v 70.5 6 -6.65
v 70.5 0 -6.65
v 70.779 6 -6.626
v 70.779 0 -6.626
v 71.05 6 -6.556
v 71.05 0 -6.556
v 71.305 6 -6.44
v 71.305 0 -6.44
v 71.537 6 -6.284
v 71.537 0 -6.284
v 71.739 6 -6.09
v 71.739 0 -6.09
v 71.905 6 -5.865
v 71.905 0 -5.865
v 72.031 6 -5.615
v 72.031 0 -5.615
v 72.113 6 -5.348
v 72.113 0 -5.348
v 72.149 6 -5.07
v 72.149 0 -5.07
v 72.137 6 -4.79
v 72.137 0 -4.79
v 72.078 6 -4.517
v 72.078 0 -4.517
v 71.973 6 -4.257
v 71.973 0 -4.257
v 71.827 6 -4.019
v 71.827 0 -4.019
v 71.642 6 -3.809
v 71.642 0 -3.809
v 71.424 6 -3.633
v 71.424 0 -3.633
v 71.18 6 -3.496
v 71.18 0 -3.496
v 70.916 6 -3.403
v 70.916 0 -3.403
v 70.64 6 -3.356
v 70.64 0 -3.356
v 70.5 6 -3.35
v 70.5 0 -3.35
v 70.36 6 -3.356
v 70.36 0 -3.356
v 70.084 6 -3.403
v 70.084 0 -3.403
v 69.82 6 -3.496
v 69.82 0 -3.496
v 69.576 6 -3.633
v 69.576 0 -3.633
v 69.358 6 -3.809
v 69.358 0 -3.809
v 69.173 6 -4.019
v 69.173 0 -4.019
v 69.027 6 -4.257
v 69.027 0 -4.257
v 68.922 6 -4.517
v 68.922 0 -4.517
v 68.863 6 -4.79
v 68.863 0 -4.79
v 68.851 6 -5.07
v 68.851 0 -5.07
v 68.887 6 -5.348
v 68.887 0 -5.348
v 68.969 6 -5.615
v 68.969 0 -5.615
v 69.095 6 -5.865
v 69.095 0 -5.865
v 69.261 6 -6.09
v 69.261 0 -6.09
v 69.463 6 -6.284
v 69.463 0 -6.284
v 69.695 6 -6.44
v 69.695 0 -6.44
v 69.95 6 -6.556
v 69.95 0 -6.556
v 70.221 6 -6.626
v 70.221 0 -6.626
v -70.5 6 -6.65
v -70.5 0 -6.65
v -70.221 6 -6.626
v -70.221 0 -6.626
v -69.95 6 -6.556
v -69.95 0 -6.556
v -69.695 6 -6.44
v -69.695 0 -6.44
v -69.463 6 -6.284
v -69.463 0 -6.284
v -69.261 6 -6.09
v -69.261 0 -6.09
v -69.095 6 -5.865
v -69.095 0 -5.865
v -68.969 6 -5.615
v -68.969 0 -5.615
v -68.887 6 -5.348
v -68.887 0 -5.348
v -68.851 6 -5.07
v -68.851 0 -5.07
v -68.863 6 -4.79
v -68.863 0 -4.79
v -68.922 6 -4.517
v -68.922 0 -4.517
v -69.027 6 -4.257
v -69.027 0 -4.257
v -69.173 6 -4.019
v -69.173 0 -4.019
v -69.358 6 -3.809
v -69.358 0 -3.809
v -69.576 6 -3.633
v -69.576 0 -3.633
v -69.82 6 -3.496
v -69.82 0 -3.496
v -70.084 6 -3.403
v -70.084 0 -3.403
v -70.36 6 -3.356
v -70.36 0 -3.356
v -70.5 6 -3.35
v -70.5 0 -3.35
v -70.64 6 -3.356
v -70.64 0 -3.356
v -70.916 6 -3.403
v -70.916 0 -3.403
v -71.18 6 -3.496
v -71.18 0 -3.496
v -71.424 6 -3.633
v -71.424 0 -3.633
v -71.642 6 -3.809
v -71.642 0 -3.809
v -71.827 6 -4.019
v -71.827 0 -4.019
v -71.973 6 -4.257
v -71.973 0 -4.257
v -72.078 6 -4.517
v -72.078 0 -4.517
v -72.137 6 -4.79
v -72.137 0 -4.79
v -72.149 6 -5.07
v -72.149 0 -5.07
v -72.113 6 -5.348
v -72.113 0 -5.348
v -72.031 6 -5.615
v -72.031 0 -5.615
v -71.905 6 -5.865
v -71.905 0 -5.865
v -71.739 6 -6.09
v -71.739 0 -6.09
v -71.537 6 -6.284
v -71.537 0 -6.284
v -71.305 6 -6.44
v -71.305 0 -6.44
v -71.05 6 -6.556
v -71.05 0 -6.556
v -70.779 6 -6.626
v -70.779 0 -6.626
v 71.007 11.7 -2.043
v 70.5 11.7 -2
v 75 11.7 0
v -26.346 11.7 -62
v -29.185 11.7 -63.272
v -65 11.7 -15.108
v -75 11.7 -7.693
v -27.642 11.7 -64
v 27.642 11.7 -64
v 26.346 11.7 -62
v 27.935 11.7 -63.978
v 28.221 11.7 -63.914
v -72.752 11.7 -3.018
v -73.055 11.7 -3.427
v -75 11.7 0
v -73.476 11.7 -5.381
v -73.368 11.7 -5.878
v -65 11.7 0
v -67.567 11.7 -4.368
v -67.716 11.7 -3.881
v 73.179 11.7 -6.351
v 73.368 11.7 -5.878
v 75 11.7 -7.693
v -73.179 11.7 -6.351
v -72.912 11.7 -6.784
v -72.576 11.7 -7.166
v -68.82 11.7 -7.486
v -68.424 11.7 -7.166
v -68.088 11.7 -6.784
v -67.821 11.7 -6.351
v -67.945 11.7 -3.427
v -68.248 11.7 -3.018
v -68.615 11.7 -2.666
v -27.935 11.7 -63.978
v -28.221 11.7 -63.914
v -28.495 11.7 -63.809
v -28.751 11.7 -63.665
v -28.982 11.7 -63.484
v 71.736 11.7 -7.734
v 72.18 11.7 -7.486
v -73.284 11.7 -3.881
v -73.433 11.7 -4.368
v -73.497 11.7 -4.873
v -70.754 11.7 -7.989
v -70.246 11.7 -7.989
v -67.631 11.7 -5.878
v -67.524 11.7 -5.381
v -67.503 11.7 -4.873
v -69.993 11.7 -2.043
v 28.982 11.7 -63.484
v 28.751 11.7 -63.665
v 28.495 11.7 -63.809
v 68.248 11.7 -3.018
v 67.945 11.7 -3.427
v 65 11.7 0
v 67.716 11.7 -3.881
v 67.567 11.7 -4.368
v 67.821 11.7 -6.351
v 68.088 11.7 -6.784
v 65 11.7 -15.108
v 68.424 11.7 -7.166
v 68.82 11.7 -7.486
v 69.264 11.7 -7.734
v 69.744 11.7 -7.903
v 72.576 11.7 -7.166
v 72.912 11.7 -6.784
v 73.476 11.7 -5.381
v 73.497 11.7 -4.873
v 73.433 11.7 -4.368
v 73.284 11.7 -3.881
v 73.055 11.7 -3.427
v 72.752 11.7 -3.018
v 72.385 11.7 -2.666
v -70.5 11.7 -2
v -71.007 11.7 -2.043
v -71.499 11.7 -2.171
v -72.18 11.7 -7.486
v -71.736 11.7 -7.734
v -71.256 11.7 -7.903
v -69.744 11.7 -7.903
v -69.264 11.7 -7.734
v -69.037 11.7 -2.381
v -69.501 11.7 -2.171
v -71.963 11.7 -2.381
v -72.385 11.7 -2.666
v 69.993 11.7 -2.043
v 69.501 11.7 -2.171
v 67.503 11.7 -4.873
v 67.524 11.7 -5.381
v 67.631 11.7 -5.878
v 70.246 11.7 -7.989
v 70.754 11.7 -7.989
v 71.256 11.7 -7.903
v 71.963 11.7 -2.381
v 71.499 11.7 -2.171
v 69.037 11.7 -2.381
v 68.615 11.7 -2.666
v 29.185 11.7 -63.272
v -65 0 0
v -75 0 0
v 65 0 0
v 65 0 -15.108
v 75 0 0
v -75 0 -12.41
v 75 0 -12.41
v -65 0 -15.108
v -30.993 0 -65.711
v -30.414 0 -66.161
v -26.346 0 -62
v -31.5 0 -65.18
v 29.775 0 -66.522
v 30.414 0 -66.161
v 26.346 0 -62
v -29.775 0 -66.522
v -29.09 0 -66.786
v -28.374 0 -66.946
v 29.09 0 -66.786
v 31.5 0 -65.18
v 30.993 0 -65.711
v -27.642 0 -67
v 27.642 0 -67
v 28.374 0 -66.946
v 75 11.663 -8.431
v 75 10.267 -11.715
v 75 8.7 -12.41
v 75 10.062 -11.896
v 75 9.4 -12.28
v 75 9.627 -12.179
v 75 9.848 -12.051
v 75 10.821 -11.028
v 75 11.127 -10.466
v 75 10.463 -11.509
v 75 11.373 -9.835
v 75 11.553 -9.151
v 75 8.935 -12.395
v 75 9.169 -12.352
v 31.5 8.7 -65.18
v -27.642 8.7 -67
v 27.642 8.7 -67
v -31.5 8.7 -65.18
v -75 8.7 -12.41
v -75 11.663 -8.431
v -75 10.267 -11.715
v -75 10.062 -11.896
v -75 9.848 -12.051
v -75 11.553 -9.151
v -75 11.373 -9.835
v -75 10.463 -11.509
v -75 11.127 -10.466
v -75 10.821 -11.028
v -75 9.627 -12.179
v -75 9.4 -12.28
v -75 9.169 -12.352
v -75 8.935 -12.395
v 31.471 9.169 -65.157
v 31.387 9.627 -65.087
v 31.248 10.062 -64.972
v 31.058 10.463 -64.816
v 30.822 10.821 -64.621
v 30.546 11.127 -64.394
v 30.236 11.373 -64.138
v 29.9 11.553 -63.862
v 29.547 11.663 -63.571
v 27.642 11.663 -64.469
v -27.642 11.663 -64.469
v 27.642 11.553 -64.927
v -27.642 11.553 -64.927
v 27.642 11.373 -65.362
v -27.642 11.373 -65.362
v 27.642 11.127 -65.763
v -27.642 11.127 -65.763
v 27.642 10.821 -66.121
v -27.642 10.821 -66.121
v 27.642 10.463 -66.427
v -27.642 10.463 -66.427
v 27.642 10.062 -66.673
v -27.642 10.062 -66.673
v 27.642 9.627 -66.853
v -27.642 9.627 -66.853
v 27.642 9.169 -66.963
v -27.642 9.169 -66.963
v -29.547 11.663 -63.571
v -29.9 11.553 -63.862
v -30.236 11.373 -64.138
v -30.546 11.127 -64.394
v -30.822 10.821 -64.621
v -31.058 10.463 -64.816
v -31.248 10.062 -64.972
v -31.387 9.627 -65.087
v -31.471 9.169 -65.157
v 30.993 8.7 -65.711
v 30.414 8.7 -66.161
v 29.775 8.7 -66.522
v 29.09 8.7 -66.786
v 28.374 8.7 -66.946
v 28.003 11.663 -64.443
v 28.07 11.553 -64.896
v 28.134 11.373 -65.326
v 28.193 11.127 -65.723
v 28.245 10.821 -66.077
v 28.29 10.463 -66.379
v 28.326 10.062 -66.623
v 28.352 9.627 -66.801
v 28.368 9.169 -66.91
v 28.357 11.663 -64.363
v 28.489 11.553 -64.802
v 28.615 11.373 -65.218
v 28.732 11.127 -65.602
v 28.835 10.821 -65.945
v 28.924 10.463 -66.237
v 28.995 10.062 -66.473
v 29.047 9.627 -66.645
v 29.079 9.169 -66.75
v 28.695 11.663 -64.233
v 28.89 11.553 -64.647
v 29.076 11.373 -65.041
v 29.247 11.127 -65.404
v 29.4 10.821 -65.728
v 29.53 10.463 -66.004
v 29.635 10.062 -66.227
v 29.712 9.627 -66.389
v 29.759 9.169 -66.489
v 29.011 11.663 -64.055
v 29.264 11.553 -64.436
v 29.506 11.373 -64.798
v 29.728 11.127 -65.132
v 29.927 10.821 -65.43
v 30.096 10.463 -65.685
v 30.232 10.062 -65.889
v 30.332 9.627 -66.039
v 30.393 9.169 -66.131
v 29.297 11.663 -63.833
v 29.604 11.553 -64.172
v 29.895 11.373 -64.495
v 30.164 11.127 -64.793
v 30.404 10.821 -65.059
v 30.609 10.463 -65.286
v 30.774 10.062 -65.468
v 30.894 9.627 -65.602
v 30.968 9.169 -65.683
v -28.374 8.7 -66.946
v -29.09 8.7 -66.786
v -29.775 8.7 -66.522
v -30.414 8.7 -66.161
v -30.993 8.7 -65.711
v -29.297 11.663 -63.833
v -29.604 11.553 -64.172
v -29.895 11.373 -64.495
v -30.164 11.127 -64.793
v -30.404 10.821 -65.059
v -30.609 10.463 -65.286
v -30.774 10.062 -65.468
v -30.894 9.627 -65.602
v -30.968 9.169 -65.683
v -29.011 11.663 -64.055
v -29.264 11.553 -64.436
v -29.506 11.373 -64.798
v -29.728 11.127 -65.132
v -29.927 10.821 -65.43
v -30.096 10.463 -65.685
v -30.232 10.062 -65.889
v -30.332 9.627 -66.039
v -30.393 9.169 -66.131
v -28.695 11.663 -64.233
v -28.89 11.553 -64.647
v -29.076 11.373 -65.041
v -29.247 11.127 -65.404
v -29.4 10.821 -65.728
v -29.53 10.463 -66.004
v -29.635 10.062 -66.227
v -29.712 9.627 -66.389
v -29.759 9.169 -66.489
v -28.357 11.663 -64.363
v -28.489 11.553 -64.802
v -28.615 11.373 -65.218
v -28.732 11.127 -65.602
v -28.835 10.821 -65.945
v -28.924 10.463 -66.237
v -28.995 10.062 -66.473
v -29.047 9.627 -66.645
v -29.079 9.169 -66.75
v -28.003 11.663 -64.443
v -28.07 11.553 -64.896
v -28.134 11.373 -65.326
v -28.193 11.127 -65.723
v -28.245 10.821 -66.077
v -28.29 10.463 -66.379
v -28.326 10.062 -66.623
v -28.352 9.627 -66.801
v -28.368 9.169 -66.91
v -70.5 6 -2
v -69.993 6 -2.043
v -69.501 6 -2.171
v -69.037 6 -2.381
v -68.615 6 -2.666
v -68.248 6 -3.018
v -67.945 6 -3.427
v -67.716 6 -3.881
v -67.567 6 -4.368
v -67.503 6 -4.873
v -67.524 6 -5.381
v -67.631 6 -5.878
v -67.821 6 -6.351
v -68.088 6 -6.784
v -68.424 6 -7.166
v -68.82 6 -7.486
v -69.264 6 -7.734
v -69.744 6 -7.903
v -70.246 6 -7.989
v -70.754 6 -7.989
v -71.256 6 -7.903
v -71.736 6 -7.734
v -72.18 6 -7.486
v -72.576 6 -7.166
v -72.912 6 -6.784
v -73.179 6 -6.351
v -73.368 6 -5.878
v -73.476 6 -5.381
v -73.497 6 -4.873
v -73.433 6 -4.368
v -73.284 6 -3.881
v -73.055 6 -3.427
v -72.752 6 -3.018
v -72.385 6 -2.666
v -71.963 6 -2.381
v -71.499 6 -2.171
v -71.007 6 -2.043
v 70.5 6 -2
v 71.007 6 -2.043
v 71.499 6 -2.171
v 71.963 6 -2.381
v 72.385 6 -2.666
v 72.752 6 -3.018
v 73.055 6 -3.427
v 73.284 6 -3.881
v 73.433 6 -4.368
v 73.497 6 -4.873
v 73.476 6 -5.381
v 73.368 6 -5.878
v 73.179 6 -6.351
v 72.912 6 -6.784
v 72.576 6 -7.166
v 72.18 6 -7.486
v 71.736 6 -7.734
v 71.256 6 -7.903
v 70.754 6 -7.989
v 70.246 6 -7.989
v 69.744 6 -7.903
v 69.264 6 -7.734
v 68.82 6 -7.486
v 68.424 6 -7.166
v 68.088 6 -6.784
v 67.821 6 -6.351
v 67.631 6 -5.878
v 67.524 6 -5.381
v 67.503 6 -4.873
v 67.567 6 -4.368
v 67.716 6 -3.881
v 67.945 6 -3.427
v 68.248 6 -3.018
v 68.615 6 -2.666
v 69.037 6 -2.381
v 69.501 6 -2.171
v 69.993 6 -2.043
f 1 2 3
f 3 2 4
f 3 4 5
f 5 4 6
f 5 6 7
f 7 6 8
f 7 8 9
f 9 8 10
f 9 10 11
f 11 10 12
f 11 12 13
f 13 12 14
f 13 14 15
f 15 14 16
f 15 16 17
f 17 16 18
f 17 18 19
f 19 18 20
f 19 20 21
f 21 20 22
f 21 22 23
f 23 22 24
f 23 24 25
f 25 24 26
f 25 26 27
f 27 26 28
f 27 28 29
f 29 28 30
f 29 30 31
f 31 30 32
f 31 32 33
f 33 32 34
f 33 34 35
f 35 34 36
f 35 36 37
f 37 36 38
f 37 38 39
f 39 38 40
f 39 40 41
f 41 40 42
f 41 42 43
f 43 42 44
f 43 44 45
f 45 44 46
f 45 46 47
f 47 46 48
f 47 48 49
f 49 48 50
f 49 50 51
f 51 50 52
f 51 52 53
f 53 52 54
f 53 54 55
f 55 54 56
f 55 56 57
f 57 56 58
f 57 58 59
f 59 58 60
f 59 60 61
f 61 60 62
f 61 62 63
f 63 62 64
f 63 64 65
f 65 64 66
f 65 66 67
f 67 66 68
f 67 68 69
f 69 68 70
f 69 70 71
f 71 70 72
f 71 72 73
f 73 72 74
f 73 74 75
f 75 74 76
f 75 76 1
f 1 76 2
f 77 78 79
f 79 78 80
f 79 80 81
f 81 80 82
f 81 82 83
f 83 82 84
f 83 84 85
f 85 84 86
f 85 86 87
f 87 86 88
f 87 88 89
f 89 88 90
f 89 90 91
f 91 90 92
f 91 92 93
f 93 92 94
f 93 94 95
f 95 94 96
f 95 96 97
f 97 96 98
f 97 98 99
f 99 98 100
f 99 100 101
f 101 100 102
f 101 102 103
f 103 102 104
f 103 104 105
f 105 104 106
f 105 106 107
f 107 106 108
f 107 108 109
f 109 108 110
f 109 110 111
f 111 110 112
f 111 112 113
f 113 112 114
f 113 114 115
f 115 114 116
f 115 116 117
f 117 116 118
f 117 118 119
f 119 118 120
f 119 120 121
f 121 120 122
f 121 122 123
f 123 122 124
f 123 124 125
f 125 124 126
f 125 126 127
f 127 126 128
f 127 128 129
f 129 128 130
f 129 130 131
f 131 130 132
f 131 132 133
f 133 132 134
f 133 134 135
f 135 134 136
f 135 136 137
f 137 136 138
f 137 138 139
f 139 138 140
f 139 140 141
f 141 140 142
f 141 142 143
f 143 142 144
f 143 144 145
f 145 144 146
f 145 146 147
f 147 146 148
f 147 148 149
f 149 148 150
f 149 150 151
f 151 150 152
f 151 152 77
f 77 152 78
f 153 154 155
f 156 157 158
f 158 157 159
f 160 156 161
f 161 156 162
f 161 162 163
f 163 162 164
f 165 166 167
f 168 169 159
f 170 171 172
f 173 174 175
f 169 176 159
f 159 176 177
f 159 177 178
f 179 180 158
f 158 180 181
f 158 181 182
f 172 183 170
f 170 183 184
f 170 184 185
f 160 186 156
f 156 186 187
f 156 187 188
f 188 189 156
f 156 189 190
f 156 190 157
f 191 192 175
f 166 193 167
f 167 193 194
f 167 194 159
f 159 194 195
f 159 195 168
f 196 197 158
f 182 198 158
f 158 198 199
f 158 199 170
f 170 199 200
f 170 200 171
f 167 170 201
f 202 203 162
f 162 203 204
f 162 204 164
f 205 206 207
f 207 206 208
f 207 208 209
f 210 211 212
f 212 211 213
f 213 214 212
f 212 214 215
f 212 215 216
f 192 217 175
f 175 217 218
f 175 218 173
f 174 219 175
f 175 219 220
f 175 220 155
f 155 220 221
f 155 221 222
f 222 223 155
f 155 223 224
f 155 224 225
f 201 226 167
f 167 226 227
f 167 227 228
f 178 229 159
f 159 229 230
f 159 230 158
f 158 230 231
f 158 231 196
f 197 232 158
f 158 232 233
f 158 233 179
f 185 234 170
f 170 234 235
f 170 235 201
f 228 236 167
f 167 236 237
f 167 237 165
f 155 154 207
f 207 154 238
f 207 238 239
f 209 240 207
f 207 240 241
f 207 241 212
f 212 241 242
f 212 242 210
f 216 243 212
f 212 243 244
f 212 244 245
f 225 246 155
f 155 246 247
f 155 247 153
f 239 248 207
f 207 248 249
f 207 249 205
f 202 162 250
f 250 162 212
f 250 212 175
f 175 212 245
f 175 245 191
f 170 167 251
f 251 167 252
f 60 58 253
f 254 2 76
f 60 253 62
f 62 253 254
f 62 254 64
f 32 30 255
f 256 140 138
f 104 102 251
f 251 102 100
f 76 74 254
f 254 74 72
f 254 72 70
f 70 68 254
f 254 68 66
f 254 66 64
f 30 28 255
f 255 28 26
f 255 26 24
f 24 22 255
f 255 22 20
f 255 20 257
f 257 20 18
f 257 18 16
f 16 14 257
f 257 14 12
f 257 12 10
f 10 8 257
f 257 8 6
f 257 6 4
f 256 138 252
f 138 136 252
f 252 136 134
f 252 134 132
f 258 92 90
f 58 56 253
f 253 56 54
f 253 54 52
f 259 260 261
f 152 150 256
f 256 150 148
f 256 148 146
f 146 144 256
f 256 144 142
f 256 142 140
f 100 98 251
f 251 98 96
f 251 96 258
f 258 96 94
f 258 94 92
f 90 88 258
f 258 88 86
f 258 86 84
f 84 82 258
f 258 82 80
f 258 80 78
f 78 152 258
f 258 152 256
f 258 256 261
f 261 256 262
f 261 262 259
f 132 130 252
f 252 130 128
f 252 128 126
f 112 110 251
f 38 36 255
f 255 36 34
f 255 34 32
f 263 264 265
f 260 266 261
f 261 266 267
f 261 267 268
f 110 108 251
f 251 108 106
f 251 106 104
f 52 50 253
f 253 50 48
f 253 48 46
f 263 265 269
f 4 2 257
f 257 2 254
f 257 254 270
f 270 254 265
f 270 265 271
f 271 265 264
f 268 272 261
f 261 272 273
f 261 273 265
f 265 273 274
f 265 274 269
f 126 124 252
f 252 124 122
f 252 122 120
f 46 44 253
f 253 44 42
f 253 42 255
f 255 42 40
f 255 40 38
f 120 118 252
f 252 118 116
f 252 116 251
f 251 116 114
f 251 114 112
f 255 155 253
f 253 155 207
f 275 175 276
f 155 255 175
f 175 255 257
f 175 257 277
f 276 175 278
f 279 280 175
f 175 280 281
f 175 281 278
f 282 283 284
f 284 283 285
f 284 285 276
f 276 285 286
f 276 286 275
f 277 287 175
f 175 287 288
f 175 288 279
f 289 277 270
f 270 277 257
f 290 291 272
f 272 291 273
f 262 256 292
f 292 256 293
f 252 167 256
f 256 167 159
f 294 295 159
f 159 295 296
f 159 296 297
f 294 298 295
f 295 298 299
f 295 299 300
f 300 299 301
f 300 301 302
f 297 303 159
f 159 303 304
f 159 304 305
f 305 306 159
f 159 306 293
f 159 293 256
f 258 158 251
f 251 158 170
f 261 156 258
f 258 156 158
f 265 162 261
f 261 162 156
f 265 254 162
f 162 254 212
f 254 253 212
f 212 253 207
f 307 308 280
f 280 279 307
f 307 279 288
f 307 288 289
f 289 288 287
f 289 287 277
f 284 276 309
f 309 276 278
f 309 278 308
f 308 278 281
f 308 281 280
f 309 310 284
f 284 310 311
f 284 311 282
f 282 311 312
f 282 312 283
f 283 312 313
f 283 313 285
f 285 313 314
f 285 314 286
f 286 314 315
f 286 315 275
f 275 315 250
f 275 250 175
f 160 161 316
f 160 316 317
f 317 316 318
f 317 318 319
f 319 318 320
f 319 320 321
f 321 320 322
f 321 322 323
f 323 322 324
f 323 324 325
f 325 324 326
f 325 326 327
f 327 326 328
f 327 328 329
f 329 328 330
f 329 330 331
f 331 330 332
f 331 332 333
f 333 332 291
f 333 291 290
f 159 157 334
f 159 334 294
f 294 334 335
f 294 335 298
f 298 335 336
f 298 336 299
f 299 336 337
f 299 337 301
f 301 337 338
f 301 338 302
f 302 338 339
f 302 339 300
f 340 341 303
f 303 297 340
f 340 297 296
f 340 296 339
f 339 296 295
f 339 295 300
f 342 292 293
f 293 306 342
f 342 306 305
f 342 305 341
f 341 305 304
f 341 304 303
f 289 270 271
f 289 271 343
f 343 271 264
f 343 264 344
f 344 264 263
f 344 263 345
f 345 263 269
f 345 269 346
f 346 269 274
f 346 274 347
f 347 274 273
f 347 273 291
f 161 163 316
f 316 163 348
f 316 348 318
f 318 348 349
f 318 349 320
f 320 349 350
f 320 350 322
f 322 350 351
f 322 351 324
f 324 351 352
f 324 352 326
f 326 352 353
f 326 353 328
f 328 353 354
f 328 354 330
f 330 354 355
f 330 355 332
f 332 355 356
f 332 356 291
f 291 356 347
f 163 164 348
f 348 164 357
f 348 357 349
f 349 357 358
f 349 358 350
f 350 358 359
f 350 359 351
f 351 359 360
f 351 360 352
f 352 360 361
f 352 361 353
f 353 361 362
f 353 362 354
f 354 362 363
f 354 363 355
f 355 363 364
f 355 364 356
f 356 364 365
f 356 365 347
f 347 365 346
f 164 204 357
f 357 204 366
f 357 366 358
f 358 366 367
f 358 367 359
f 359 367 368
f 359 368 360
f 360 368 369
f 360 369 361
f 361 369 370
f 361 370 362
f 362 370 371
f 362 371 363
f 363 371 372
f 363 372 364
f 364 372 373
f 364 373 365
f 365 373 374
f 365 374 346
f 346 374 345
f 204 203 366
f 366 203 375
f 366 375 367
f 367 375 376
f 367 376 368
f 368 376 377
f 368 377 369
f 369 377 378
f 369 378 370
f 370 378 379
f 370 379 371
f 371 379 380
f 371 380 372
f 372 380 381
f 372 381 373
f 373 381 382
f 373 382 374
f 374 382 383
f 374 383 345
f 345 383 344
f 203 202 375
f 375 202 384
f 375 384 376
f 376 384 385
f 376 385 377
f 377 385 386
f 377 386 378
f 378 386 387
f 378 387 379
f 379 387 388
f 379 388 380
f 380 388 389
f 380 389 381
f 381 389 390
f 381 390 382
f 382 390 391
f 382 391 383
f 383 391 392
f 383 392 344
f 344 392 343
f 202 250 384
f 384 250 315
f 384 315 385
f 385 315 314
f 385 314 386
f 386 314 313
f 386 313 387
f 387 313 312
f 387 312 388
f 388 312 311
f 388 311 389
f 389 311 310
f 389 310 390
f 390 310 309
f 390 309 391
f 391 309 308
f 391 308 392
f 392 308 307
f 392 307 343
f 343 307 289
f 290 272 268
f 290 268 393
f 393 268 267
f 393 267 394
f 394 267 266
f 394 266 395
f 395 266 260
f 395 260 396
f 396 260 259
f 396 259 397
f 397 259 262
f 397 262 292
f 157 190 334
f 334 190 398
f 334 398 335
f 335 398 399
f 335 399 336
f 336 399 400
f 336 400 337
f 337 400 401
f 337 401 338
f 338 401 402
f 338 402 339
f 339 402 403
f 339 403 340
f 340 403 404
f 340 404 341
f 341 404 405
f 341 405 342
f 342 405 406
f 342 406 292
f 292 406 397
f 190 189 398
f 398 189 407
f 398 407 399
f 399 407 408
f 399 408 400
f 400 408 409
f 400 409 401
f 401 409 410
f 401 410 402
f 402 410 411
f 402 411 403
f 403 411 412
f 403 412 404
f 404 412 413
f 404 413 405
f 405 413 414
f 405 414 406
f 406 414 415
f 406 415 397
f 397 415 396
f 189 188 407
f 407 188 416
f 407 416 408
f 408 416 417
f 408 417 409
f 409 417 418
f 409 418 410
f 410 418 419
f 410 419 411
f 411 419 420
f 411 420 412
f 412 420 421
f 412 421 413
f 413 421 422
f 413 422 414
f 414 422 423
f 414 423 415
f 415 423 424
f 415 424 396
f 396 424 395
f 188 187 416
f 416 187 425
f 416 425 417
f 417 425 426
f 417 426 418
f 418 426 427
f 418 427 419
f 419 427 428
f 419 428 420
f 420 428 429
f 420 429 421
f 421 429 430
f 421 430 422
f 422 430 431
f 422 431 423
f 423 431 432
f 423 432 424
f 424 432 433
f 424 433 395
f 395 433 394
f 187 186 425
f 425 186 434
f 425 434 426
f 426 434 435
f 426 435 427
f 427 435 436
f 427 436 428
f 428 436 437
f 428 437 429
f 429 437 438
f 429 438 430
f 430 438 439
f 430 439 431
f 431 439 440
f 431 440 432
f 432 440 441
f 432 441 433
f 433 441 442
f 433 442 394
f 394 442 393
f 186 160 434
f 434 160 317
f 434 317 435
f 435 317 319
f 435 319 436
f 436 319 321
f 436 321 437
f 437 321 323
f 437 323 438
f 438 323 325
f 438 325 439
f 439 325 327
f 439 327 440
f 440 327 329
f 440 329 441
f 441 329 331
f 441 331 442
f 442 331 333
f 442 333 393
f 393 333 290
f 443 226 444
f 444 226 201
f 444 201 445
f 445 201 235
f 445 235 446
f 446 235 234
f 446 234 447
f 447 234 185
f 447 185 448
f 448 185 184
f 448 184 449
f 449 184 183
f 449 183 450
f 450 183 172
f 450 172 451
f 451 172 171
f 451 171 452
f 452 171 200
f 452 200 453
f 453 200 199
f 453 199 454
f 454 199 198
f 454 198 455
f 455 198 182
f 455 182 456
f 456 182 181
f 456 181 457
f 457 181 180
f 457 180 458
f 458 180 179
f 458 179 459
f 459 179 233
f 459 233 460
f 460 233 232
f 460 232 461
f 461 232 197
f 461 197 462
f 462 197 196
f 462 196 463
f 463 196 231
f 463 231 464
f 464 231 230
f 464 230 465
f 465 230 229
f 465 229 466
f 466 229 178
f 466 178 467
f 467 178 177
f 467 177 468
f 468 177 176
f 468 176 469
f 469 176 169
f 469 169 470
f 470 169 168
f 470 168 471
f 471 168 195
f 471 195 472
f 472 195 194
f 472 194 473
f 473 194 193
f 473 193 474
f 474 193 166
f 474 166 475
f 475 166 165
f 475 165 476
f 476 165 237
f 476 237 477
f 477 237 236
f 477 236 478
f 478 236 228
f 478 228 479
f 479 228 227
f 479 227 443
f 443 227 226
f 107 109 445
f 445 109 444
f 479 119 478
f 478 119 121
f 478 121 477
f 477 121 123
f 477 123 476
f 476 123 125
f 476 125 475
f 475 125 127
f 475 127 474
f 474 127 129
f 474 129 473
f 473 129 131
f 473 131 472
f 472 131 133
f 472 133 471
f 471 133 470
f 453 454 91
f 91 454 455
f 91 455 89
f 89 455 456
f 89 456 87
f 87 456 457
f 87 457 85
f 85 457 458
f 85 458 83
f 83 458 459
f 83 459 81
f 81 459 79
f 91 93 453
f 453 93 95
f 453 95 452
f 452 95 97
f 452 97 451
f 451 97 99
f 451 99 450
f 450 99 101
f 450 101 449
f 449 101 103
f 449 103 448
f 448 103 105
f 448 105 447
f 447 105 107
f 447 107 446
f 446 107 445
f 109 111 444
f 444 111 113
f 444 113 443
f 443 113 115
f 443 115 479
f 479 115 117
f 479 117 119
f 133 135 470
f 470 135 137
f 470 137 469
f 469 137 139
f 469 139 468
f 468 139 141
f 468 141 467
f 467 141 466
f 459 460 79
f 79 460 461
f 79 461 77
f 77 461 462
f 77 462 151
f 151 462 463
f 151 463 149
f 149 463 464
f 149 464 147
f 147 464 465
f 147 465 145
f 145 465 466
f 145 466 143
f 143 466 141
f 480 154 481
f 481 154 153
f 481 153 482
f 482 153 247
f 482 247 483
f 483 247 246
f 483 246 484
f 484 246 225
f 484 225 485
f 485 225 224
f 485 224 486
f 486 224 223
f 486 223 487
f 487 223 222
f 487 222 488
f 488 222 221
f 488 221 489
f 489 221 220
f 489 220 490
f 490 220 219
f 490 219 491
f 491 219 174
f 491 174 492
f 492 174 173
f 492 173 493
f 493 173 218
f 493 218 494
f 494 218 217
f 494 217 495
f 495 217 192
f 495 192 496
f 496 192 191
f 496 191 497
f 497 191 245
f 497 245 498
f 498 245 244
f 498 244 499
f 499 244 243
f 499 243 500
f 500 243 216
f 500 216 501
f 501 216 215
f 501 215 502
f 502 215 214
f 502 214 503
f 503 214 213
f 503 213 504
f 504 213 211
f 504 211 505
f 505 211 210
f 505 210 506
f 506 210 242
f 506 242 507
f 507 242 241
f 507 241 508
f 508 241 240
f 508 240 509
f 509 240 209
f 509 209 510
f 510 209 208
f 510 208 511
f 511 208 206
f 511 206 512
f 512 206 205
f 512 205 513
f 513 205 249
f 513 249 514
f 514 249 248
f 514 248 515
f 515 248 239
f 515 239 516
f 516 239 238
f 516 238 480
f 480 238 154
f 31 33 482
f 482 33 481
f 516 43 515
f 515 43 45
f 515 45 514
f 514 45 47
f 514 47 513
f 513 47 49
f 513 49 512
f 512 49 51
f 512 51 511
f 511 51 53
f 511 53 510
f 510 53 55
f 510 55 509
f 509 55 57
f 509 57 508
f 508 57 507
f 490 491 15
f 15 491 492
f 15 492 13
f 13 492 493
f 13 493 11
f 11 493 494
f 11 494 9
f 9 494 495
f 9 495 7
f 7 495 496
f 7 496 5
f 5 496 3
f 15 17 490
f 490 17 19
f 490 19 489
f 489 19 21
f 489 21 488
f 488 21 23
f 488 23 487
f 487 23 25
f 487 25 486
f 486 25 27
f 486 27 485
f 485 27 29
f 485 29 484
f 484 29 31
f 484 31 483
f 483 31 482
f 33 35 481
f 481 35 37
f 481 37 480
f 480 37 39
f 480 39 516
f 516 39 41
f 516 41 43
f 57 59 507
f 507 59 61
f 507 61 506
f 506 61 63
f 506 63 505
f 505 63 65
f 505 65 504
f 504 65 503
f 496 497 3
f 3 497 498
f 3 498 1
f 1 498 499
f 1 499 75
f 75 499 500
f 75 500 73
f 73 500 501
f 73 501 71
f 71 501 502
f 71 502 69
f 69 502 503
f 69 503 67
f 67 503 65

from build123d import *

# Parameters (mm, degrees)
SKETCH1_R               = 1.65
BOSS_EXTRUDE1_DEPTH     = 11.7
CUT_EXTRUDE1_DEPTH      = 51
CUT_EXTRUDE1_DEPTH_BACK = 10
FILLET1_R               = 3
FILLET2_R               = 5
SKETCH3_R               = 3
CUT_EXTRUDE2_DEPTH      = 5.7


with BuildPart() as part:
    # Sketch1 → Boss-Extrude1 (new body)
    with BuildSketch(Plane(origin=(0, 0, 0), x_dir=(1, 0, 0), z_dir=(0, 1, 0))):
        Polygon((-22.5, 37), (22.5, 37), (53, 0), (75, 0), (75, 12.409836066), (30, 67), (-30, 67), (-75, 12.409836066), (-75, 0), (-53, 0), align=None)
        with Locations(Location((70.5, 5, 0), (0, 0, 270))):
            Circle(SKETCH1_R, mode=Mode.SUBTRACT)
        with Locations(Location((-70.5, 5, 0), (0, 0, 270))):
            Circle(SKETCH1_R, mode=Mode.SUBTRACT)
    extrude(amount=BOSS_EXTRUDE1_DEPTH)

    # Sketch2 → Cut-Extrude1 (cut, two sides: drawn at the far end of the back side and taken through both)
    with BuildSketch(Plane(origin=(0, 0, 0), x_dir=(1, 0, 0), z_dir=(0, 1, 0)).offset(-CUT_EXTRUDE1_DEPTH_BACK)):
        Polygon((-65, 15.108099284), (-65, 0), (-53, 0), (-22.5, 37), (0, 37), (0, 62), (-26.345865626, 62), align=None)
        Polygon((26.345865626, 62), (0, 62), (0, 37), (22.5, 37), (53, 0), (65, 0), (65, 15.108099284), align=None)
    extrude(amount=CUT_EXTRUDE1_DEPTH + CUT_EXTRUDE1_DEPTH_BACK, mode=Mode.SUBTRACT)

    # Fillet1
    fillet1_edges = [part.edges().sort_by_distance(p)[0] for p in [
        (52.5, 11.7, -39.704918033),
        (0, 11.7, -67),
        (-52.5, 11.7, -39.704918033),
    ]]
    fillet(fillet1_edges, radius=FILLET1_R)

    # Fillet2
    # the kernel refuses this fillet: 5 mm, written as the material it takes off along each edge
    with BuildSketch(Plane(origin=(27.641824959, 11.7, -62), x_dir=(0.7716291513697928, 0, -0.6360726788318559), z_dir=(0.6360726788318559, 0, 0.7716291513697928))) as fillet2_piece_1:
        with BuildLine():
            CenterArc((2, -3), 3, 0, 90)
            Line((5, -3), (5, 0))
            Line((5, 0), (2, 0))
        make_face()
    revolve(axis=Axis((27.641824959, 11.7, -62), (0, 1, 0)), revolution_arc=50.50041147, mode=Mode.SUBTRACT)
    with BuildSketch(Plane(origin=(-27.641824959, 11.7, -62), x_dir=(0, 0, -1), z_dir=(1, 0, 0))) as fillet2_piece_2:
        with BuildLine():
            CenterArc((2, -3), 3, 0, 90)
            Line((5, -3), (5, 0))
            Line((5, 0), (2, 0))
        make_face()
    revolve(axis=Axis((-27.641824959, 11.7, -62), (0, 1, 0)), revolution_arc=50.50041147, mode=Mode.SUBTRACT)
    with BuildSketch(Plane(origin=(-30, -5.895437603, -67), x_dir=(-0.6360726788318558, 0, 0.771629151369793), z_dir=(0, 1, 0)), Plane(origin=(30, -5.895437603, -67), x_dir=(-1, 0, 0), z_dir=(0, 1, 0))) as fillet2_piece_3:
        with BuildLine():
            CenterArc((FILLET2_R * 0.471635008245, FILLET2_R), FILLET2_R, 219.49958853, 50.50041147)
            Line((-FILLET2_R * 0.299994143125, FILLET2_R * 0.363927321168), (0, 0))
            Line((0, 0), (FILLET2_R * 0.471635008245, 0))
        make_face()
    extrude(amount=17.595437603, mode=Mode.SUBTRACT)

    # Sketch3 → Cut-Extrude2 (cut)
    with BuildSketch(Plane(origin=(0, 11.7, 0), x_dir=(1, 0, 0), z_dir=(0, 1, 0))):
        with Locations(Location((-70.5, 5, 0), (0, 0, 270))):
            Circle(SKETCH3_R)
        with Locations(Location((70.5, 5, 0), (0, 0, 270))):
            Circle(SKETCH3_R)
    extrude(amount=-CUT_EXTRUDE2_DEPTH, mode=Mode.SUBTRACT)


solid = part.part
